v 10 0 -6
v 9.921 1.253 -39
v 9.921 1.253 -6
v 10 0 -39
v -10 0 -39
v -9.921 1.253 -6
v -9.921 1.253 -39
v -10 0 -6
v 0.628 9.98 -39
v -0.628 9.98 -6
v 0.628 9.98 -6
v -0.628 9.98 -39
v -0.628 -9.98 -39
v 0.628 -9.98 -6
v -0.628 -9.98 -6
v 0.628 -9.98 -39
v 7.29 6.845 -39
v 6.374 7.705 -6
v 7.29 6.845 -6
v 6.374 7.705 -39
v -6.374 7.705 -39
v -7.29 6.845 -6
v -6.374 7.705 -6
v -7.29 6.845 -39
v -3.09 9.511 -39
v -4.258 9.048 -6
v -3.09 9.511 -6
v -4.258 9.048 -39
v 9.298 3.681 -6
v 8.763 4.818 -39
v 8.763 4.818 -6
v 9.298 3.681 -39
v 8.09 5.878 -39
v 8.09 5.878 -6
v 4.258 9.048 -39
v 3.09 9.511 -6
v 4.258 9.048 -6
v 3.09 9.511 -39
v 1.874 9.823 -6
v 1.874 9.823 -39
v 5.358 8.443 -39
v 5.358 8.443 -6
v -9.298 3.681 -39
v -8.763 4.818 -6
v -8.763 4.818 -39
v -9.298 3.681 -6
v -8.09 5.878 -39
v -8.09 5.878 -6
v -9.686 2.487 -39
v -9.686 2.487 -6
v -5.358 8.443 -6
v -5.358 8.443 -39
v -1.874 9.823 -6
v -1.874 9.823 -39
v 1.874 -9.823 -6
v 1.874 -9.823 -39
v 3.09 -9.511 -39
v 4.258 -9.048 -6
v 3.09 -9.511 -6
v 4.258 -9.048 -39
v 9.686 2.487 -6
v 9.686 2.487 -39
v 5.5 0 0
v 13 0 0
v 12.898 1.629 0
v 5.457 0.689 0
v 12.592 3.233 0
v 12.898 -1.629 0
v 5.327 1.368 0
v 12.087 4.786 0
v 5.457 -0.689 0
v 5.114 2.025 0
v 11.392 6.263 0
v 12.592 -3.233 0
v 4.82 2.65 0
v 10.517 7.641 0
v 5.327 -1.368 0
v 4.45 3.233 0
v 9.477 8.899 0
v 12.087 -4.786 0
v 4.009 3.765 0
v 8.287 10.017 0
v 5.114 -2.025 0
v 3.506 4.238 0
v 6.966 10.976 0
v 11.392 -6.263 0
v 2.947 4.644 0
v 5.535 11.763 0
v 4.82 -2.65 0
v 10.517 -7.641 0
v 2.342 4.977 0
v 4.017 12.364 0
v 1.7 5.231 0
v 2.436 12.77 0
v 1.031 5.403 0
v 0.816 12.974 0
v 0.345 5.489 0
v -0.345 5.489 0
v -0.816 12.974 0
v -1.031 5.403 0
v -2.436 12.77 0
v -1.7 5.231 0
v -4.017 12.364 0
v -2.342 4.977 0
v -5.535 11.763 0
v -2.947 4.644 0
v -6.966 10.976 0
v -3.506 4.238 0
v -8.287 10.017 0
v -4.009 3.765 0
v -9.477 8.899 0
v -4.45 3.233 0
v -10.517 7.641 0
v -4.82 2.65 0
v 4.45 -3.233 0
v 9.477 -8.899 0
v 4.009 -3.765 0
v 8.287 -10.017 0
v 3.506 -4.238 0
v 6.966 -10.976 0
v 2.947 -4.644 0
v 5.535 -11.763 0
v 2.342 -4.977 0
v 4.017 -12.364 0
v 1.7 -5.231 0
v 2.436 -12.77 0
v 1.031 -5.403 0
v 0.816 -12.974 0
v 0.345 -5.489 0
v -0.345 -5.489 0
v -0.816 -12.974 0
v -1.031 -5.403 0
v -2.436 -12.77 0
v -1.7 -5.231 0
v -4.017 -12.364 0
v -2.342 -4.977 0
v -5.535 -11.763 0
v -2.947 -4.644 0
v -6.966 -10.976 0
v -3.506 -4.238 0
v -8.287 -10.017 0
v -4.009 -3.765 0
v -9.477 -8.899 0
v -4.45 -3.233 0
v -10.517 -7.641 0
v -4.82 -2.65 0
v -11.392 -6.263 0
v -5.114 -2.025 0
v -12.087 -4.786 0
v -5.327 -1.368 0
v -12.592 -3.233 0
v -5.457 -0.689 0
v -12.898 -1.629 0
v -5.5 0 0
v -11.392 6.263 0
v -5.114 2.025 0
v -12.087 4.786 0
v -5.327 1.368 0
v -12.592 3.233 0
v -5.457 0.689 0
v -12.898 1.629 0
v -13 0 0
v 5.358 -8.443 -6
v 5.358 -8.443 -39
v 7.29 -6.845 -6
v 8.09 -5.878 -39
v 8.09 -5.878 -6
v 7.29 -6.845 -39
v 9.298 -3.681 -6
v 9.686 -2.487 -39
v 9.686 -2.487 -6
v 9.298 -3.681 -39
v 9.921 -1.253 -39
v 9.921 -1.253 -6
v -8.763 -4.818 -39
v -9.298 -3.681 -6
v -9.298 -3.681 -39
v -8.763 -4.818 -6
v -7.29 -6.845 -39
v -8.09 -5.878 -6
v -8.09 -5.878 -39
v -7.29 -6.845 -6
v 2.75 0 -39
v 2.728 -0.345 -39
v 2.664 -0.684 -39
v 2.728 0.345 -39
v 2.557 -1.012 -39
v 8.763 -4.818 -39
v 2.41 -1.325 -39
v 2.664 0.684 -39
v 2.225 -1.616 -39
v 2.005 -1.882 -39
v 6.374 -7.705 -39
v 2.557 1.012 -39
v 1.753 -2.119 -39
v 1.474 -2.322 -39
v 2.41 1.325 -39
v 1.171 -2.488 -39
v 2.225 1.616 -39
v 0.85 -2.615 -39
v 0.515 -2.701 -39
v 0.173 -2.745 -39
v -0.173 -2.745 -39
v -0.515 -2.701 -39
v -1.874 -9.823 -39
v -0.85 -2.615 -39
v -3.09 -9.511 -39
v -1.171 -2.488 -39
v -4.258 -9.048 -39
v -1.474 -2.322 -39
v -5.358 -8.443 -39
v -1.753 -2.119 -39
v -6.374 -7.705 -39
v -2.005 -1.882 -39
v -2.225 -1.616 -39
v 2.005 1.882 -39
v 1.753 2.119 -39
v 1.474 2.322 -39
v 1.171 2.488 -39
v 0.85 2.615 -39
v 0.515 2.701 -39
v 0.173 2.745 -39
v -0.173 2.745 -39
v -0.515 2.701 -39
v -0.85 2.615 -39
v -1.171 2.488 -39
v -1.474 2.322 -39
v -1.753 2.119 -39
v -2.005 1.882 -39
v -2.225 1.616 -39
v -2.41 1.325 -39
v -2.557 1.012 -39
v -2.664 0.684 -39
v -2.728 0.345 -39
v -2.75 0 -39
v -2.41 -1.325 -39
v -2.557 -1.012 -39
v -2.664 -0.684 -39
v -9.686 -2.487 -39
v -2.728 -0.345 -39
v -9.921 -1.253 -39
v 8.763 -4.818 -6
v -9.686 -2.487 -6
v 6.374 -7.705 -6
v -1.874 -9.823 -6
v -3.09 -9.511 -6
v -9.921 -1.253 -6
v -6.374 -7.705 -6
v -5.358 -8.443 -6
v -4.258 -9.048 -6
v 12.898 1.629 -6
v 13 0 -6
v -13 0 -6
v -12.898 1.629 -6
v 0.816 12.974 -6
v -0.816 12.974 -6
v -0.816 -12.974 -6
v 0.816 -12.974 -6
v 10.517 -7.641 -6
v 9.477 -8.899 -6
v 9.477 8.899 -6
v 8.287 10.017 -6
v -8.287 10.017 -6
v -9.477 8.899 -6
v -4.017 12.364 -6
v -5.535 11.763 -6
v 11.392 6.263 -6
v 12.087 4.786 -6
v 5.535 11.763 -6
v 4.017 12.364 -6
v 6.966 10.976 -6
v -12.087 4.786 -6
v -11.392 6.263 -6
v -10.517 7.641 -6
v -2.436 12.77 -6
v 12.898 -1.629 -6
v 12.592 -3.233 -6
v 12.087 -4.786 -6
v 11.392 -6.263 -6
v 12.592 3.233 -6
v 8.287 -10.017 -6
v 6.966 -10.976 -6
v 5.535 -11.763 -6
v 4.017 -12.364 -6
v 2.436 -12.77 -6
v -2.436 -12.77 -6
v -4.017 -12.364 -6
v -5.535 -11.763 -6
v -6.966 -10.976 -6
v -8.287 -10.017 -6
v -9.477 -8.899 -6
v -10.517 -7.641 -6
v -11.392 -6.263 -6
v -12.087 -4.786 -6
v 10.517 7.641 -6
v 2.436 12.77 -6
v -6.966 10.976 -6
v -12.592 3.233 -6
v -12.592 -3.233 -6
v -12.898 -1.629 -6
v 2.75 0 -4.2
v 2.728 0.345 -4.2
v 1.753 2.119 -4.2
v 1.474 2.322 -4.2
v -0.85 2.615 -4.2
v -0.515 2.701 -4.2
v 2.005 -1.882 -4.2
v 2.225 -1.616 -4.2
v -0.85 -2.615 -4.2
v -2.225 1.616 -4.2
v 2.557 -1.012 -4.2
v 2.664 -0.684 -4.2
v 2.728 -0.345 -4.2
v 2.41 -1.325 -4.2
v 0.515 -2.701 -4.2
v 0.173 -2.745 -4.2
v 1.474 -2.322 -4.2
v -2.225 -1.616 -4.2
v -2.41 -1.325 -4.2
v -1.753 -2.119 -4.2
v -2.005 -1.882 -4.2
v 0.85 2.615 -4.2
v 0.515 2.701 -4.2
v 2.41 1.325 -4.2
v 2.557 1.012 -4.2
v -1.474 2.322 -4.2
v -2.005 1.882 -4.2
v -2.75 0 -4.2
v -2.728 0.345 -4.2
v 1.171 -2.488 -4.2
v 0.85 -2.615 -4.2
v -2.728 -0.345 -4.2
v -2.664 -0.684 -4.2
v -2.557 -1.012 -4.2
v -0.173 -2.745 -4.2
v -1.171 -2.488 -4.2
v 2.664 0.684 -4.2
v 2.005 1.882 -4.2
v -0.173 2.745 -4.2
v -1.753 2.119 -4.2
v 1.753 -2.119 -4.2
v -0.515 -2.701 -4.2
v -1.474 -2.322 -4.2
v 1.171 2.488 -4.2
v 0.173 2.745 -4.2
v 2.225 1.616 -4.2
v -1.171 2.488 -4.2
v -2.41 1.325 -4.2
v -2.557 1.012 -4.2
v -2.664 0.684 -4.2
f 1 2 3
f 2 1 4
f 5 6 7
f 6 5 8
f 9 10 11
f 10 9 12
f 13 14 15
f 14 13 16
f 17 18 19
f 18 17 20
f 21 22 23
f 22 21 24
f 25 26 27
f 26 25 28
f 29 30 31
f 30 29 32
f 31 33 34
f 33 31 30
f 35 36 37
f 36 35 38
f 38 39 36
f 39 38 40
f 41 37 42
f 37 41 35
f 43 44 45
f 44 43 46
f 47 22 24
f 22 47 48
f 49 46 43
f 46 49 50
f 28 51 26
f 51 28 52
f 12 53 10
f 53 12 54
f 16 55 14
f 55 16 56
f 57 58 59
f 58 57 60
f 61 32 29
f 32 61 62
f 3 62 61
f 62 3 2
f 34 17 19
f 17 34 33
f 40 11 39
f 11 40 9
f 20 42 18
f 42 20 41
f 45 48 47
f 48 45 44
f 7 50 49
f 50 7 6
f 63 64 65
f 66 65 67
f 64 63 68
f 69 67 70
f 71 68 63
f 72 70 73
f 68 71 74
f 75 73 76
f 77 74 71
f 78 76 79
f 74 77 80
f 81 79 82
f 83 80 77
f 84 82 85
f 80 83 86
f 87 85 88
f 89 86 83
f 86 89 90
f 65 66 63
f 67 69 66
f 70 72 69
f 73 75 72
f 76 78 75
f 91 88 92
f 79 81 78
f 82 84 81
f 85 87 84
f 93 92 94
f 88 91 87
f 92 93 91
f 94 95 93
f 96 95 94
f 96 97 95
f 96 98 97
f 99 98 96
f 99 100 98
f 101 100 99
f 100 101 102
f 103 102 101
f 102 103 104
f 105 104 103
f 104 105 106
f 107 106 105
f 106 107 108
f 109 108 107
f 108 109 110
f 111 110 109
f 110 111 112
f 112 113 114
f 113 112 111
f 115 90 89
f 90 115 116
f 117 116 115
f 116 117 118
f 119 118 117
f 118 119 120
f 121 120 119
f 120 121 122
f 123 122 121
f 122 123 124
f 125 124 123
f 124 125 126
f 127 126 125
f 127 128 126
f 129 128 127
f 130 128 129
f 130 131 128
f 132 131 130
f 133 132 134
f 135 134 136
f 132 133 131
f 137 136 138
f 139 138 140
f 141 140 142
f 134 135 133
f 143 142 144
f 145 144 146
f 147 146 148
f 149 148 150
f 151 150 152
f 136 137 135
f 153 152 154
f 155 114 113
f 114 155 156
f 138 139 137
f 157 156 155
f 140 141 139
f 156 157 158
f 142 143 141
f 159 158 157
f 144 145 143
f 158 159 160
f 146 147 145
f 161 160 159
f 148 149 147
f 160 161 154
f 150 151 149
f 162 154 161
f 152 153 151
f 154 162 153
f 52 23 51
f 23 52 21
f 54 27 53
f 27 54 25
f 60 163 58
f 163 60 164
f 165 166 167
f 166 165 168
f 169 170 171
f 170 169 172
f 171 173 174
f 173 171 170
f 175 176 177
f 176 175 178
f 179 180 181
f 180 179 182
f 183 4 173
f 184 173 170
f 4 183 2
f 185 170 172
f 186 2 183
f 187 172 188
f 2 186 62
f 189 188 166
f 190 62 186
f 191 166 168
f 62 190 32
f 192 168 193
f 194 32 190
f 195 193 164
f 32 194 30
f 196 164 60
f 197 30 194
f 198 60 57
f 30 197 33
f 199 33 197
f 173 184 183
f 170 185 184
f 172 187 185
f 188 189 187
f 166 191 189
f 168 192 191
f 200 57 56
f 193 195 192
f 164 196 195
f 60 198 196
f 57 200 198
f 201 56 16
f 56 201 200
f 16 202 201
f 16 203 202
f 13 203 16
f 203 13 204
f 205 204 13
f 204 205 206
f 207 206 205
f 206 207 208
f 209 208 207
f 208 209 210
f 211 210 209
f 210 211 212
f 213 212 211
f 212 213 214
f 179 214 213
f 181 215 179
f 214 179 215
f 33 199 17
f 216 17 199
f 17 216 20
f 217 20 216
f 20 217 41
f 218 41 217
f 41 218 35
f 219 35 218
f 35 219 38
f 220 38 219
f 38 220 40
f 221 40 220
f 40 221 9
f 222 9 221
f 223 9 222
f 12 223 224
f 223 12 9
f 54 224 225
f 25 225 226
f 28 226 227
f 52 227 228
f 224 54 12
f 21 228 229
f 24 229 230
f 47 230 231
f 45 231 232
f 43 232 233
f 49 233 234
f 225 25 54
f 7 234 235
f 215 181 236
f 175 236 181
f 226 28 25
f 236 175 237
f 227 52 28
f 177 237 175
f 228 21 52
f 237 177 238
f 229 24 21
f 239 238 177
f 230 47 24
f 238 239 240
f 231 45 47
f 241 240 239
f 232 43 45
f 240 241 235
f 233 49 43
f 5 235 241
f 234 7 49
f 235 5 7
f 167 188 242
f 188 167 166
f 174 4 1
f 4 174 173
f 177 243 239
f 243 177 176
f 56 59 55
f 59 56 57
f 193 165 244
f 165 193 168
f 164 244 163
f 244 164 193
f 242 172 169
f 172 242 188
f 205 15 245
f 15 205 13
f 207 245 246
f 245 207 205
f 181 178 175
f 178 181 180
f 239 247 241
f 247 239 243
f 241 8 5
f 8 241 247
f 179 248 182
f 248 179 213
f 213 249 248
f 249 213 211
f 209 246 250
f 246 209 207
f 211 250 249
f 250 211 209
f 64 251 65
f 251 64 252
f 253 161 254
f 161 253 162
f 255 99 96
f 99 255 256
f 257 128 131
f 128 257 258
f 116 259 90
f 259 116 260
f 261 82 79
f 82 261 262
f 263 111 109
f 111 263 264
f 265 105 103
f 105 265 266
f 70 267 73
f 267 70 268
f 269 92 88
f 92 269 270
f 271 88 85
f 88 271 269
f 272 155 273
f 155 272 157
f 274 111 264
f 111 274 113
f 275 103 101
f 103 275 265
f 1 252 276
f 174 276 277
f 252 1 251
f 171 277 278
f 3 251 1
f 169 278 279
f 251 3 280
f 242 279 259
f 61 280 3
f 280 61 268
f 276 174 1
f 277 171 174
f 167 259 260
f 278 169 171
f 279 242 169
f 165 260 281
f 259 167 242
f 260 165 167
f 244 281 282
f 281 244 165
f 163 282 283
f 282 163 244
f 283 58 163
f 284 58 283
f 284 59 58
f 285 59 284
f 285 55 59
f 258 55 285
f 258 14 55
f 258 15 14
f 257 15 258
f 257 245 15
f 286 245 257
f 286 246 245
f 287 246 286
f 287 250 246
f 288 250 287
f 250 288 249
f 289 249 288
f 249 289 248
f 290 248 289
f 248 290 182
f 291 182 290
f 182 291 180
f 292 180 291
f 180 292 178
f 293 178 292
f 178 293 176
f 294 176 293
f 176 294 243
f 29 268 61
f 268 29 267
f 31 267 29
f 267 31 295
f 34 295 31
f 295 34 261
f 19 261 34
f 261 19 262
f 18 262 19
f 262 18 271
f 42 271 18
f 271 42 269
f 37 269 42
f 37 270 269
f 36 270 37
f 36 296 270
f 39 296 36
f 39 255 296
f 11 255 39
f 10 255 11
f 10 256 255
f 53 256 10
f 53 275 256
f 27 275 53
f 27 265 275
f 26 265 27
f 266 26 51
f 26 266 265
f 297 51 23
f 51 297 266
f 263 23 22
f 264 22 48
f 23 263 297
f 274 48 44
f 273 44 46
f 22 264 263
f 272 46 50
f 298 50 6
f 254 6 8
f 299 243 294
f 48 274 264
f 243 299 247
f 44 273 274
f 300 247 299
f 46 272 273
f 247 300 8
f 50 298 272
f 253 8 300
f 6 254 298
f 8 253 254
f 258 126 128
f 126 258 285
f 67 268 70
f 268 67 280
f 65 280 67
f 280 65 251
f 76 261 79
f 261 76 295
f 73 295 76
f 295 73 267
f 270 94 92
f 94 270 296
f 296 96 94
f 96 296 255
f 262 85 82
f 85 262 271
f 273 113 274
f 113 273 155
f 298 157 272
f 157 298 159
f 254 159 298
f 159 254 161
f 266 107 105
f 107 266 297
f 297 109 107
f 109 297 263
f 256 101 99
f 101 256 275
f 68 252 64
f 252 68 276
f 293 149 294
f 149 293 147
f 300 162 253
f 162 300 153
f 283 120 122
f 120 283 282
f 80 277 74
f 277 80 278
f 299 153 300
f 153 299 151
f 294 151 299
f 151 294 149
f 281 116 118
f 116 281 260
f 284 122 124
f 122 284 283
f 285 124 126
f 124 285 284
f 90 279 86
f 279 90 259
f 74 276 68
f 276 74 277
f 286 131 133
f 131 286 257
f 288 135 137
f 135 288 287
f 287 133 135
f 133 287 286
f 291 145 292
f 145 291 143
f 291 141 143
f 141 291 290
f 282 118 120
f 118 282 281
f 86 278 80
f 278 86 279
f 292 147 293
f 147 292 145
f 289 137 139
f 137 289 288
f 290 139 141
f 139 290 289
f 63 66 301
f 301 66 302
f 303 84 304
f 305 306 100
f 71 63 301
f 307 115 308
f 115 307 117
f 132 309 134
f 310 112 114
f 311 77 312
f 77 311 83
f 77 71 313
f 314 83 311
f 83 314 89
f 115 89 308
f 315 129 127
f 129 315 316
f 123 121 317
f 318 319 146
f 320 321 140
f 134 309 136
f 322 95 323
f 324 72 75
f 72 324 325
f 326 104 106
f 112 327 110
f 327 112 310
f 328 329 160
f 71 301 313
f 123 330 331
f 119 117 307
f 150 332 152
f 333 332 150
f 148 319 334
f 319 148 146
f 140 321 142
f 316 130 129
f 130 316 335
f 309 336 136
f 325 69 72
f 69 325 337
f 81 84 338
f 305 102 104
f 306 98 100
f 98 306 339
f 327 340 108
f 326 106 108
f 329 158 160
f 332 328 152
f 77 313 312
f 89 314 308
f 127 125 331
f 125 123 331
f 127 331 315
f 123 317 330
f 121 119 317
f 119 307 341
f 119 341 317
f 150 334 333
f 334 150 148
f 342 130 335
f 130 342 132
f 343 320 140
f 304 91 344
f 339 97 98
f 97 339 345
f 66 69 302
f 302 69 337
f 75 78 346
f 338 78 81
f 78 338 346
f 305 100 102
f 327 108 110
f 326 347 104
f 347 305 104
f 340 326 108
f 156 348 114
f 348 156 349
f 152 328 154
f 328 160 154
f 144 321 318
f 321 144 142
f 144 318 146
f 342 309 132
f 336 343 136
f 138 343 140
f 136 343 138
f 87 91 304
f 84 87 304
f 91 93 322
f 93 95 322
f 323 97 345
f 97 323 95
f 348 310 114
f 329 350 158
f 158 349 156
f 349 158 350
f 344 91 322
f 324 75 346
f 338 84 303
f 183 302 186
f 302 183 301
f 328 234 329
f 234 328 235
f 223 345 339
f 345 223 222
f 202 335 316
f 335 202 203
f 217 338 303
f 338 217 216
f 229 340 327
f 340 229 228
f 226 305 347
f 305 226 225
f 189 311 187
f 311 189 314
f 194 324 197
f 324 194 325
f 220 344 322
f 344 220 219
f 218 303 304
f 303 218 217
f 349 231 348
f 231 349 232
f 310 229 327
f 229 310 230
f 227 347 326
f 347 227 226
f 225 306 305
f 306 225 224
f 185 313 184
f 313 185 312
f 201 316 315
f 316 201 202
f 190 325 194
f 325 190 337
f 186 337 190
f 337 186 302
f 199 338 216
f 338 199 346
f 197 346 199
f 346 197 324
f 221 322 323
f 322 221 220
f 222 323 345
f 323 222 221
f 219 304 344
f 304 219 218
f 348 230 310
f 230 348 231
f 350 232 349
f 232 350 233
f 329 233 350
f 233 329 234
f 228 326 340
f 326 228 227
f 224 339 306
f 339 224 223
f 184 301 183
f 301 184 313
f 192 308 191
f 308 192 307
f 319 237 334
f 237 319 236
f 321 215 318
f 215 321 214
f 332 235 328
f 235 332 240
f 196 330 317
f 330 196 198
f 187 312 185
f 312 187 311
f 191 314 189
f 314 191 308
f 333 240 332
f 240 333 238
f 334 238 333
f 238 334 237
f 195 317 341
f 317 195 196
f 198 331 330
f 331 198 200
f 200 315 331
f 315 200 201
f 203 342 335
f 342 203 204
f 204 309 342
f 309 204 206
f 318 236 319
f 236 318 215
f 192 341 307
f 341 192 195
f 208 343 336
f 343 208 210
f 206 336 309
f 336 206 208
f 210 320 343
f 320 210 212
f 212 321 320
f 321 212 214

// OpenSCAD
$fn = 50;


difference() {
	union() {
		translate(v = [0, 0, -39.0000000000]) {
			cylinder(h = 39, r = 10.0000000000);
		}
		translate(v = [0, 0, -6.0000000000]) {
			cylinder(h = 6, r = 13.0000000000);
		}
	}
	union() {
		translate(v = [0, 0, 0]) {
			rotate(a = [0, 0, 0]) {
				difference() {
					union() {
						#translate(v = [0, 0, -39.0000000000]) {
							cylinder(h = 39, r = 2.2500000000);
						}
						#translate(v = [0, 0, -4.2000000000]) {
							cylinder(h = 4.2000000000, r = 10.0000000000, r1 = 2.7500000000, r2 = 5.5000000000);
						}
						#translate(v = [0, 0, -39.0000000000]) {
							cylinder(h = 39, r = 2.7500000000);
						}
						#translate(v = [0, 0, -39.0000000000]) {
							cylinder(h = 39, r = 2.2500000000);
						}
					}
					union();
				}
			}
		}
	}
}
